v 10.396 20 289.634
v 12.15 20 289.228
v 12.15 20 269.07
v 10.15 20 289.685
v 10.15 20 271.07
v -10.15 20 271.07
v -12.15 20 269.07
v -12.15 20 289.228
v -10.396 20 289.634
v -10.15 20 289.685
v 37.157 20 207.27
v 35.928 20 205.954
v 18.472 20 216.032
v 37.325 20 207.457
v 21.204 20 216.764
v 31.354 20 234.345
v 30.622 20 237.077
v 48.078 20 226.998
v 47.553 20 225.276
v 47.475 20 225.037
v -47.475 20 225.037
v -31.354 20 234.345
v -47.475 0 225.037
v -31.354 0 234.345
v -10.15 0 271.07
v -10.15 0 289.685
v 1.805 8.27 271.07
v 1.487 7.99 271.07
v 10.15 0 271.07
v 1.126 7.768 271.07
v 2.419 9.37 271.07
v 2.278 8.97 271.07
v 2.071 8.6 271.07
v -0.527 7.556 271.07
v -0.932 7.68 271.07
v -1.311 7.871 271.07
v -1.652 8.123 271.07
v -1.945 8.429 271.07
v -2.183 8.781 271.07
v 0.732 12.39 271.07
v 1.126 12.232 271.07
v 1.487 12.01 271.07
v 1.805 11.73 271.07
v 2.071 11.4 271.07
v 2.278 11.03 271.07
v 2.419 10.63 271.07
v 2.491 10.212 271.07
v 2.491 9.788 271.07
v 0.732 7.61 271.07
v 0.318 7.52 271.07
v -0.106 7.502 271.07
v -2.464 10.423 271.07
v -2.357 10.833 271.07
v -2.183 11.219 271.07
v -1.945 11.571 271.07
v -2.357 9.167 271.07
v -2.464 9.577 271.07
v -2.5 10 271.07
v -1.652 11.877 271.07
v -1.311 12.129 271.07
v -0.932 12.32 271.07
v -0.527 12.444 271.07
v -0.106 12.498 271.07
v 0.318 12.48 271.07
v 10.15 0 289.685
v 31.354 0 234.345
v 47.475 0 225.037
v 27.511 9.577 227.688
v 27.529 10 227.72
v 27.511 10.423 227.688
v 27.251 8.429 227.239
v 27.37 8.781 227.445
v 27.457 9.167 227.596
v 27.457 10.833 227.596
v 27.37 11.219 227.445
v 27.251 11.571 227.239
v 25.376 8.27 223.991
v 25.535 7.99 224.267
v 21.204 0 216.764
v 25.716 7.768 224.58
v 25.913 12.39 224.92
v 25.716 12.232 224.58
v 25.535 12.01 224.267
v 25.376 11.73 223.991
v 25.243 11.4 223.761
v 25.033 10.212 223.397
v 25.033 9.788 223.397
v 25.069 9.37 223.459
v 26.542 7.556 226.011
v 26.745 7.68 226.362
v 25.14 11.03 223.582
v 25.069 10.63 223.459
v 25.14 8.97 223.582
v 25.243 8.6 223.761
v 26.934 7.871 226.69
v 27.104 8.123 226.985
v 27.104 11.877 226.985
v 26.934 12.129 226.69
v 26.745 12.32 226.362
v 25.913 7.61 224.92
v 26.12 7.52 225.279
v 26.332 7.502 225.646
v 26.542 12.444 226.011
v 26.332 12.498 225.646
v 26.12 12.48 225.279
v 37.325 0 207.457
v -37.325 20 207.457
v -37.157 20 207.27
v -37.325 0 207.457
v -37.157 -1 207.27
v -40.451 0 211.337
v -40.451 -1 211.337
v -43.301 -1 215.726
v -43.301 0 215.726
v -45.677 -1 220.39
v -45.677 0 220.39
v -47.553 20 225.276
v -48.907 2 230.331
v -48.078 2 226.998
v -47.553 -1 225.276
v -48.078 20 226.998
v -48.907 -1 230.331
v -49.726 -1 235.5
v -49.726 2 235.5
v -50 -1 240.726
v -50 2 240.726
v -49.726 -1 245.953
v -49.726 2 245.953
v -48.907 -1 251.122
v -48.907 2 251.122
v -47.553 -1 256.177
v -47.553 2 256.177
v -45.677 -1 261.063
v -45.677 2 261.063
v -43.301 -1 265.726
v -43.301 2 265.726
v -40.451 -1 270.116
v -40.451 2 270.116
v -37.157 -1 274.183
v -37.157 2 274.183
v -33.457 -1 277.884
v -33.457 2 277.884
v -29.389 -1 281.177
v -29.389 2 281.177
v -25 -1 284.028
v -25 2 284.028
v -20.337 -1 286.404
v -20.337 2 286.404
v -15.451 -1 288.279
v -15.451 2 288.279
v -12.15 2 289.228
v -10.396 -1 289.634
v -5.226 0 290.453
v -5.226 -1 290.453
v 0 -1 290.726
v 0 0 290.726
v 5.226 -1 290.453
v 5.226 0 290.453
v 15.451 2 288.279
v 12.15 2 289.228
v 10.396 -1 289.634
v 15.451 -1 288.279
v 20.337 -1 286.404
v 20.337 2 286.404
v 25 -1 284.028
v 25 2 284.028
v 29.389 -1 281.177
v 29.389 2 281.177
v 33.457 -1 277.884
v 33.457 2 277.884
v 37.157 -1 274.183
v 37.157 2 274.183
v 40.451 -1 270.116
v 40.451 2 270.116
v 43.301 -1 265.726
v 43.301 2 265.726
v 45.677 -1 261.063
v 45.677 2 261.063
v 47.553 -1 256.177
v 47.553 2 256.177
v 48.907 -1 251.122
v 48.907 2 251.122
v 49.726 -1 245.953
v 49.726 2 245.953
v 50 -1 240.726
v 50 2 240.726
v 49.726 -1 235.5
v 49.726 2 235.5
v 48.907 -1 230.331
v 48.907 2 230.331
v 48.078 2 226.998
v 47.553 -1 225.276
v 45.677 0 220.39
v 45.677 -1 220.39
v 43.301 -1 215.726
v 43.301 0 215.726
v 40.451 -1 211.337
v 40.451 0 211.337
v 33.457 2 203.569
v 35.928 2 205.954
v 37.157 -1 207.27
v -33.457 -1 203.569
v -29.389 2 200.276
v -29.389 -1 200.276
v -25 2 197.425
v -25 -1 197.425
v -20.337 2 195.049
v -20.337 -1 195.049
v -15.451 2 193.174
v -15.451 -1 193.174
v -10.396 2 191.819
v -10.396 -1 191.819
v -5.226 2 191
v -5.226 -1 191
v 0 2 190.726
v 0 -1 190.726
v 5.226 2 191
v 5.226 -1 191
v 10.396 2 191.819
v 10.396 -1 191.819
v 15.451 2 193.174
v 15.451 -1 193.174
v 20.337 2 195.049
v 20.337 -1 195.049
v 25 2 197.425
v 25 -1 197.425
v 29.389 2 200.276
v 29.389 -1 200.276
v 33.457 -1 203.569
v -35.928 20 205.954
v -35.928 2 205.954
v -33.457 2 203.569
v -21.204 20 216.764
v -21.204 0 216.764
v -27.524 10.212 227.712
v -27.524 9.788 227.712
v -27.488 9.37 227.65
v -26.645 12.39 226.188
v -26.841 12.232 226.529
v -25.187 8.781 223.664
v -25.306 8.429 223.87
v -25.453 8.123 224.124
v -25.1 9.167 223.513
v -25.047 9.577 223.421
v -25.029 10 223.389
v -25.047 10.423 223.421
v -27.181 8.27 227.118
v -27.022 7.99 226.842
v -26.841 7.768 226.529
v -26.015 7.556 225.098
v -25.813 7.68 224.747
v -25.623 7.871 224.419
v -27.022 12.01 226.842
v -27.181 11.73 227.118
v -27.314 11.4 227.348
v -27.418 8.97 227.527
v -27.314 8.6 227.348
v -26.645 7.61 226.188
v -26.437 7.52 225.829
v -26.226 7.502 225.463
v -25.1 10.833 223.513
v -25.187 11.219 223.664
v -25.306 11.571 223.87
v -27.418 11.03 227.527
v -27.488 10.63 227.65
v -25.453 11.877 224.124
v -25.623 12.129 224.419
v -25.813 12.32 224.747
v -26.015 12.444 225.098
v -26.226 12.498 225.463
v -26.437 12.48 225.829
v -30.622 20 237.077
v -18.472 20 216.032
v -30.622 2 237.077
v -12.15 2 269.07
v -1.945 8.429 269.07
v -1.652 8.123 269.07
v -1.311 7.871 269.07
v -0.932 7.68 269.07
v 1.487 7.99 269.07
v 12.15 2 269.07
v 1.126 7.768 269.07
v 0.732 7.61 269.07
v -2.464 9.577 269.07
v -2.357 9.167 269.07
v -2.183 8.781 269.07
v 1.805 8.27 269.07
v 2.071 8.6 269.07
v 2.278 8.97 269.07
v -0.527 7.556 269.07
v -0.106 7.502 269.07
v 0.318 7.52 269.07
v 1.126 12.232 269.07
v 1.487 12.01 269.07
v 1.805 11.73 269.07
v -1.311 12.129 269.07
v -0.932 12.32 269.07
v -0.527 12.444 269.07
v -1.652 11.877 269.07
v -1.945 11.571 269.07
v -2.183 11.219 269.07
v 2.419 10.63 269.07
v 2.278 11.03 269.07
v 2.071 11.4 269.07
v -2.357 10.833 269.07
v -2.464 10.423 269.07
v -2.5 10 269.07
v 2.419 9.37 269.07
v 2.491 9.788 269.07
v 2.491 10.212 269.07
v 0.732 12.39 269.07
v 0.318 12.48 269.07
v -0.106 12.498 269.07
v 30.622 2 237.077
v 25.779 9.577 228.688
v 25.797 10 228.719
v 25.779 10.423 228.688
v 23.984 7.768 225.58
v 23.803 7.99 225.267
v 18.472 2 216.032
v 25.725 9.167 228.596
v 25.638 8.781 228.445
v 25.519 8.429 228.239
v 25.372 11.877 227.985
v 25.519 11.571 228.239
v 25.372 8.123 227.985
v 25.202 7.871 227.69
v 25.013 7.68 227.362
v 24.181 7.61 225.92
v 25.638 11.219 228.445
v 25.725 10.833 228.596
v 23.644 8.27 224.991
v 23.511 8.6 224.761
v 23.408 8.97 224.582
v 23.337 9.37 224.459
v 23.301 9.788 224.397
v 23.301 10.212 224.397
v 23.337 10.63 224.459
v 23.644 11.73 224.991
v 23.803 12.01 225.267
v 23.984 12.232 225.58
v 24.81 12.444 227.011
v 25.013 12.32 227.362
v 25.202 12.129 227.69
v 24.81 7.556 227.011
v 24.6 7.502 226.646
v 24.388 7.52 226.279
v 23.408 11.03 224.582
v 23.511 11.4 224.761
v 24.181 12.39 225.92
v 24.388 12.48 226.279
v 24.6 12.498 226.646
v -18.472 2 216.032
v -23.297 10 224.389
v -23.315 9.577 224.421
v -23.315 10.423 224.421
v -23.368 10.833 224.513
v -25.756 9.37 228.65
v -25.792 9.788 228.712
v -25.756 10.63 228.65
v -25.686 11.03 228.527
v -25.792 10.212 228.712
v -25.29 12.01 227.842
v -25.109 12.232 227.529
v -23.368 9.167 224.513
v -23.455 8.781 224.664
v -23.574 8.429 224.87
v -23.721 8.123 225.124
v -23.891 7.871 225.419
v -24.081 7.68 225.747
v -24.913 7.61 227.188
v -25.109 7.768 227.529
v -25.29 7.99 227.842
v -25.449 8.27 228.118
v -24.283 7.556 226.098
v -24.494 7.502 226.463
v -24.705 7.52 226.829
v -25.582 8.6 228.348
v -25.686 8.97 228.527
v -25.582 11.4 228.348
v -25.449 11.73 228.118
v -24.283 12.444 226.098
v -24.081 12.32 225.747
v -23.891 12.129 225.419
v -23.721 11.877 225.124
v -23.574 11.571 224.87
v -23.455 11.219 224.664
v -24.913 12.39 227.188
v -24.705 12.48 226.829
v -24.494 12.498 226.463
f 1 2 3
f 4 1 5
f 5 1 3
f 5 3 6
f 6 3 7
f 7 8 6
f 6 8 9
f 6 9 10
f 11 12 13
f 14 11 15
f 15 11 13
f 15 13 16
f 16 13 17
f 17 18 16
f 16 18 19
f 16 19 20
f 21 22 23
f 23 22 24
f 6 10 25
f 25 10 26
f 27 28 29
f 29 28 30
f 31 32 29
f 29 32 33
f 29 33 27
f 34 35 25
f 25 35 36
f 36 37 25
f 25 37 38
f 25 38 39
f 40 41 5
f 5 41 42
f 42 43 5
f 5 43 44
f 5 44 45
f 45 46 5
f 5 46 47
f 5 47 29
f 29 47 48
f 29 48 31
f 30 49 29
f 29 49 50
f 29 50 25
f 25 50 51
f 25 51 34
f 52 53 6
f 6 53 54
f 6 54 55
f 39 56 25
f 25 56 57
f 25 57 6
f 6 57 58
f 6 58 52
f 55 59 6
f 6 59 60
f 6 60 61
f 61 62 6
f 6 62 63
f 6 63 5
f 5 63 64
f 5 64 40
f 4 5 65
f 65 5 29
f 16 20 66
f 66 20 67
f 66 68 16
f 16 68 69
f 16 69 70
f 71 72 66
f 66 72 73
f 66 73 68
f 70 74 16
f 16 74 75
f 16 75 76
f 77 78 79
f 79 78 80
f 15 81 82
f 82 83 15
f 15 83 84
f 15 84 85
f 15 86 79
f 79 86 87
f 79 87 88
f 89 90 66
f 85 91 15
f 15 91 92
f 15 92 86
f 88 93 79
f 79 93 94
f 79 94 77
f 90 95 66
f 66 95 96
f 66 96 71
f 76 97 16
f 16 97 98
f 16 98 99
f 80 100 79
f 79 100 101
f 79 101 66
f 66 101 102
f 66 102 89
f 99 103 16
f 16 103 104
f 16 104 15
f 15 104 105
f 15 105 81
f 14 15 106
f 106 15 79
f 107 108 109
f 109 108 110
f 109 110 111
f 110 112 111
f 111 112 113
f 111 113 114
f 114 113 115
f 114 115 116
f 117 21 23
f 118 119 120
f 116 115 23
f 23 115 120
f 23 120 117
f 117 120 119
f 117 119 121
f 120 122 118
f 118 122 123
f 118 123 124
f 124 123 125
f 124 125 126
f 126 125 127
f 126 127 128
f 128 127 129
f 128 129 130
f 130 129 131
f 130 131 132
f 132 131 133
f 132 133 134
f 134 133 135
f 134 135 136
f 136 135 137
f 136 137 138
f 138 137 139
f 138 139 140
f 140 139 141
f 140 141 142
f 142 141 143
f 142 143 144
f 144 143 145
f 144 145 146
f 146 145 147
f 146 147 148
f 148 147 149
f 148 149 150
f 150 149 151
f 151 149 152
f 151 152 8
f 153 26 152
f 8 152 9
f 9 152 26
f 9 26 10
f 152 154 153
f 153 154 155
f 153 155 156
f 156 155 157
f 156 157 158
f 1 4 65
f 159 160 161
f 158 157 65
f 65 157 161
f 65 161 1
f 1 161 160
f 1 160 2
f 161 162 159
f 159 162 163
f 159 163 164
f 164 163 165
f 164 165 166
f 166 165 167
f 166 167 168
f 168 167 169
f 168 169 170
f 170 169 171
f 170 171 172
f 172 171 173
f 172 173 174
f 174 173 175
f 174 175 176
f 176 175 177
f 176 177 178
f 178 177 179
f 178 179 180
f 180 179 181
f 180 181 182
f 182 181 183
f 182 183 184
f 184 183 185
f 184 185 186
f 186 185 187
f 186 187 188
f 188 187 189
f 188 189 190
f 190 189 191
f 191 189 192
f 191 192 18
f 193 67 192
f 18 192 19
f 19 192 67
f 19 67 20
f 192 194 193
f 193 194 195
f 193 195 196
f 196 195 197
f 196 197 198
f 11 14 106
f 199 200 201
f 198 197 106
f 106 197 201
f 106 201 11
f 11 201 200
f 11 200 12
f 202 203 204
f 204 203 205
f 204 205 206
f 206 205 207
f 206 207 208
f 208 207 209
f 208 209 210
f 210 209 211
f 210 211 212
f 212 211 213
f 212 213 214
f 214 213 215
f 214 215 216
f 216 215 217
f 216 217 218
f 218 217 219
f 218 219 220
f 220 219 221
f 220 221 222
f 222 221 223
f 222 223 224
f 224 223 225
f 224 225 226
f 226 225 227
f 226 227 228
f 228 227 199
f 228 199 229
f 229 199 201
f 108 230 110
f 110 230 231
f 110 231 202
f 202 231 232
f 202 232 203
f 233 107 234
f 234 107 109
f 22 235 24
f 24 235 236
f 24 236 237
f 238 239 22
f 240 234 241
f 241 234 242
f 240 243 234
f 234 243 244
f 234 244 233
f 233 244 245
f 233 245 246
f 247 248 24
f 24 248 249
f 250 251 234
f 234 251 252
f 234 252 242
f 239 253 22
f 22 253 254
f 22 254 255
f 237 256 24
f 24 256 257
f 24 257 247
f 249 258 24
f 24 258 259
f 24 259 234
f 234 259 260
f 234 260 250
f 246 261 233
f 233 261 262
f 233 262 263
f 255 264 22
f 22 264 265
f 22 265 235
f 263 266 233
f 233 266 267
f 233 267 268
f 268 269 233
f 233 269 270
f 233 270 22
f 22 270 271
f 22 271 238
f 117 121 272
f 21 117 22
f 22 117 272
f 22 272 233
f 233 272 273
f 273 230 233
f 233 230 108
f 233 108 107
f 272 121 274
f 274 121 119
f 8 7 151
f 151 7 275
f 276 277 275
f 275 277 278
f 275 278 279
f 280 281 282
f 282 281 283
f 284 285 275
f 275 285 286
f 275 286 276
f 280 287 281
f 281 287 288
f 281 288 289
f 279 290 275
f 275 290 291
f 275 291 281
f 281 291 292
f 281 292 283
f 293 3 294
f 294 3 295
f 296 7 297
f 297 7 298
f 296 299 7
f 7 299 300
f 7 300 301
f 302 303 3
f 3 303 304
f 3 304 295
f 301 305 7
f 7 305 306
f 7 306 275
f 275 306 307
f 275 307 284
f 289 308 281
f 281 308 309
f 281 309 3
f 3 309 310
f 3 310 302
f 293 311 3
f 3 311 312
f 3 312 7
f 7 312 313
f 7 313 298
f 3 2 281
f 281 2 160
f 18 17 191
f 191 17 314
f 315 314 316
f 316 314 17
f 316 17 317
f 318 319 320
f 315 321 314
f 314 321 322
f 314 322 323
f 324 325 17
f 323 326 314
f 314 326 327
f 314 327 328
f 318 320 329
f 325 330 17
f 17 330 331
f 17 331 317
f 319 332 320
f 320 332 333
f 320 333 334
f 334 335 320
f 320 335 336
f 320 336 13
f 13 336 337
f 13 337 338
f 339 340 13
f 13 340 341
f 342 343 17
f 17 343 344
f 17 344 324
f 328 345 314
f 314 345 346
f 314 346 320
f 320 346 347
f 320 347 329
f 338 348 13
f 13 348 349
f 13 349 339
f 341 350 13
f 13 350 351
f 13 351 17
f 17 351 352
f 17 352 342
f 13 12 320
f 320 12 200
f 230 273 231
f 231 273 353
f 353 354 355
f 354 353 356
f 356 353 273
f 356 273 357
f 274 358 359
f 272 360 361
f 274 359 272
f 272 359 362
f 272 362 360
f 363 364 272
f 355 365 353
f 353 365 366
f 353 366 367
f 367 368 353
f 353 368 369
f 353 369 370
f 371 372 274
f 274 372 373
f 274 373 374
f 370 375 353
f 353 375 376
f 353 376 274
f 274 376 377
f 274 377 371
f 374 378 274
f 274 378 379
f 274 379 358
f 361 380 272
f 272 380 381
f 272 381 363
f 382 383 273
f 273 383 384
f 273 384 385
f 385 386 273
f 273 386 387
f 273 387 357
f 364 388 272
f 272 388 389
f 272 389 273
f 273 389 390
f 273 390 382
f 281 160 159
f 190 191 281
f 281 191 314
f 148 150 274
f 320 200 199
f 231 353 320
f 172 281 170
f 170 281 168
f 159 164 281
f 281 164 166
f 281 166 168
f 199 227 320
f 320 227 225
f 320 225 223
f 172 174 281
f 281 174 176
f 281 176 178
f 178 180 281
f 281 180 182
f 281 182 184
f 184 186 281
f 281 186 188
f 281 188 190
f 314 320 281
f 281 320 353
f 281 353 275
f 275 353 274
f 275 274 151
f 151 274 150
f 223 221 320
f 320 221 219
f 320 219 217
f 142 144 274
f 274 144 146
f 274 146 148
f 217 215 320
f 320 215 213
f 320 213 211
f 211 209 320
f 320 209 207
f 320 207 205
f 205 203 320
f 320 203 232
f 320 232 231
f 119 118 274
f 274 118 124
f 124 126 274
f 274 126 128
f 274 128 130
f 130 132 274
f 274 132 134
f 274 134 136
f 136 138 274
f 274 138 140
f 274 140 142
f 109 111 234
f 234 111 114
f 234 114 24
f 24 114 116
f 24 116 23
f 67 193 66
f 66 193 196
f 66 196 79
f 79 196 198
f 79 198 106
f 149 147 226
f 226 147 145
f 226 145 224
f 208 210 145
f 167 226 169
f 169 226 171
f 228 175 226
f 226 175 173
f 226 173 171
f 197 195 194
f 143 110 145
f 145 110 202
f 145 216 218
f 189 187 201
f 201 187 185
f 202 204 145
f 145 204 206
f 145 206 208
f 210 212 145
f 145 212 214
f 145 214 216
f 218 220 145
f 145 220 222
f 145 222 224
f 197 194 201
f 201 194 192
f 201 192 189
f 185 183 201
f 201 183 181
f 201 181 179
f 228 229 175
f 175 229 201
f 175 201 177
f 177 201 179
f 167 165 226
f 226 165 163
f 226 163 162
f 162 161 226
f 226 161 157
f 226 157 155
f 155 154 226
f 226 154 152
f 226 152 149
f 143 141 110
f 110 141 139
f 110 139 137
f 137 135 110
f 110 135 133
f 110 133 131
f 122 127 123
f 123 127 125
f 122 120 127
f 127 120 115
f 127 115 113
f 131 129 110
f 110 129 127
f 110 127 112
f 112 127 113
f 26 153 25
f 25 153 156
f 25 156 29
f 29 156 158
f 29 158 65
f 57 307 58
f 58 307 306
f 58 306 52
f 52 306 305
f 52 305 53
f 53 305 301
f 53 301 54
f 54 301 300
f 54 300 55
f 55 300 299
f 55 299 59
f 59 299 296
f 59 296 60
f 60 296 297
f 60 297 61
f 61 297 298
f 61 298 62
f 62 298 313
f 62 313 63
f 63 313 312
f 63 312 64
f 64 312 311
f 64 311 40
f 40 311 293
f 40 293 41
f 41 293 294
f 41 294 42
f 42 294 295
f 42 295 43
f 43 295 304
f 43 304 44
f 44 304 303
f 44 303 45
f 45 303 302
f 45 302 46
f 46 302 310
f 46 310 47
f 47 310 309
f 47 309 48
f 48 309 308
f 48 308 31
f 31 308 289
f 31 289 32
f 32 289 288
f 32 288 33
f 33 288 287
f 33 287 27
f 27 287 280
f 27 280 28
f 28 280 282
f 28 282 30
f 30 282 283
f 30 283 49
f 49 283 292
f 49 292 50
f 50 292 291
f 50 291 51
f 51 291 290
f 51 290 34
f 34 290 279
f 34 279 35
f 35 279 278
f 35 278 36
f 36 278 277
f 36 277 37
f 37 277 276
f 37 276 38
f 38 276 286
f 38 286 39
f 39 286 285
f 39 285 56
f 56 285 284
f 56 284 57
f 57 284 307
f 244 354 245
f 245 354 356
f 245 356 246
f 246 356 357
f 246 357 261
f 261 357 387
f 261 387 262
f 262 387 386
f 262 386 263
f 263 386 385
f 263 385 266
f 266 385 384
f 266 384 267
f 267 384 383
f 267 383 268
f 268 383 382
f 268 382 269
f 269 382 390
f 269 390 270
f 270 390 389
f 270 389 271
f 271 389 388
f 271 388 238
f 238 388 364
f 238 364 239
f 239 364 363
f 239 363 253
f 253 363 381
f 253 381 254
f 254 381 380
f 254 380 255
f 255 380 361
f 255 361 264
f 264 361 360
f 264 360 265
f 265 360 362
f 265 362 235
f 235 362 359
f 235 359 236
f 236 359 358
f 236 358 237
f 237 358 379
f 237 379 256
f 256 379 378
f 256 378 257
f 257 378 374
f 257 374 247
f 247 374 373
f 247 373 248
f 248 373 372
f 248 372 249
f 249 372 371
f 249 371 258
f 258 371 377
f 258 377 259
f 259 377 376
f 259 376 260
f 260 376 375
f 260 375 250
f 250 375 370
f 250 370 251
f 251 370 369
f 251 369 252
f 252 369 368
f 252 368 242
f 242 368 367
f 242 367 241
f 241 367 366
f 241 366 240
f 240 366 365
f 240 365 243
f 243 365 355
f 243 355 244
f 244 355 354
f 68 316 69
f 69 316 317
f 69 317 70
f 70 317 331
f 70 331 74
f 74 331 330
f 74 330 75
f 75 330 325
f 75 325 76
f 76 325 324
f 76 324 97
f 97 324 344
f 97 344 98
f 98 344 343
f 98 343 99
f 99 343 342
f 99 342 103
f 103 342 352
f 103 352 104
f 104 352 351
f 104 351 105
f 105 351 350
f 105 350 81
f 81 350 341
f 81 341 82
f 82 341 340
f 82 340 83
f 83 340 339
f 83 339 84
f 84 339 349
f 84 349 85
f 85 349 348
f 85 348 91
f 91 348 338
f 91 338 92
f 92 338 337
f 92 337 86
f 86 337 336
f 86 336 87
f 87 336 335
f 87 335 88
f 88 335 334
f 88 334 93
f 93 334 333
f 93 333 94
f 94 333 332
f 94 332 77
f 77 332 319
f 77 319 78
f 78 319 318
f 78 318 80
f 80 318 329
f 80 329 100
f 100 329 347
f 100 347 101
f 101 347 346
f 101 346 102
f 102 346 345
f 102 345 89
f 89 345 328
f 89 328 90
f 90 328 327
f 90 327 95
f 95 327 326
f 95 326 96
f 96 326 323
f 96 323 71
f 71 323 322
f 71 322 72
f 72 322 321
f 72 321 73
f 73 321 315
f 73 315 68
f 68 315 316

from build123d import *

# Parameters (mm, degrees)
BOSS_EXTRUDE1_DEPTH = 20
SHELL1_T            = -2
BOSS_EXTRUDE2_START = 1
SKETCH2_R           = 50
BOSS_EXTRUDE2_DEPTH = 1
SKETCH3_R           = 2.5
CUT_EXTRUDE1_DEPTH  = 96.067235106
CIRPATTERN1_COUNT   = 3


with BuildPart() as part:
    # Sketch1 → Boss-Extrude1 (new body)
    with BuildSketch(Plane(origin=(0, 0, 0), x_dir=(1, 0, 0), z_dir=(0, 1, 0))):
        with BuildLine():
            Line((-31.353657468, -234.344603511), (-21.203657468, -216.764287814))
            Line((-21.203657468, -216.764287814), (-37.324683077, -207.456809339))
            ThreePointArc((-37.324683077, -207.456809339), (0, -190.726435625), (37.324683077, -207.456809339))
            Line((37.324683077, -207.456809339), (21.203657468, -216.764287814))
            Line((21.203657468, -216.764287814), (31.353657468, -234.344603511))
            Line((31.353657468, -234.344603511), (47.474683077, -225.037125036))
            ThreePointArc((47.474683077, -225.037125036), (43.301270189, -265.726435625), (10.15, -289.685372501))
            Line((10.15, -289.685372501), (10.15, -271.070415552))
            Line((10.15, -271.070415552), (-10.15, -271.070415552))
            Line((-10.15, -271.070415552), (-10.15, -289.685372501))
            ThreePointArc((-10.15, -289.685372501), (-43.301270189, -265.726435625), (-47.474683077, -225.037125036))
            Line((-47.474683077, -225.037125036), (-31.353657468, -234.344603511))
        make_face()
    extrude(amount=BOSS_EXTRUDE1_DEPTH)

    # Shell1
    shell1_openings = [part.faces().sort_by_distance(p)[0] for p in [
        (0, 20, 240.726435625),
        (0, 10, 190.726435625),
        (43.301270189, 10, 265.726435625),
        (-43.301270189, 10, 265.726435625),
    ]]
    offset(amount=SHELL1_T, openings=shell1_openings, kind=Kind.INTERSECTION)

    # Sketch2 → Boss-Extrude2 (add)
    with BuildSketch(Plane.XZ.offset(BOSS_EXTRUDE2_START)):
        with Locations(Location((0, 240.726435625, 0), (0, 0, 270))):
            Circle(SKETCH2_R)
    extrude(amount=-BOSS_EXTRUDE2_DEPTH)

    # Sketch3 → Cut-Extrude1 (cut, through all)
    with BuildSketch(Plane(origin=(0, 0, 269.070415552), x_dir=(-1, 0, 0), z_dir=(0, 0, -1))):
        with Locations((0, 10)):
            Circle(SKETCH3_R)
    cut_extrude1 = extrude(amount=-CUT_EXTRUDE1_DEPTH, mode=Mode.SUBTRACT)

    # CirPattern1: Cut-Extrude1 ×3 about axis
    cirpattern1_axis = Axis((0, 0, 240.726435625), (0, -1, 0))
    for i in range(1, CIRPATTERN1_COUNT):
        add(cut_extrude1.rotate(cirpattern1_axis, i * 360 / CIRPATTERN1_COUNT), mode=Mode.SUBTRACT)


solid = part.part
